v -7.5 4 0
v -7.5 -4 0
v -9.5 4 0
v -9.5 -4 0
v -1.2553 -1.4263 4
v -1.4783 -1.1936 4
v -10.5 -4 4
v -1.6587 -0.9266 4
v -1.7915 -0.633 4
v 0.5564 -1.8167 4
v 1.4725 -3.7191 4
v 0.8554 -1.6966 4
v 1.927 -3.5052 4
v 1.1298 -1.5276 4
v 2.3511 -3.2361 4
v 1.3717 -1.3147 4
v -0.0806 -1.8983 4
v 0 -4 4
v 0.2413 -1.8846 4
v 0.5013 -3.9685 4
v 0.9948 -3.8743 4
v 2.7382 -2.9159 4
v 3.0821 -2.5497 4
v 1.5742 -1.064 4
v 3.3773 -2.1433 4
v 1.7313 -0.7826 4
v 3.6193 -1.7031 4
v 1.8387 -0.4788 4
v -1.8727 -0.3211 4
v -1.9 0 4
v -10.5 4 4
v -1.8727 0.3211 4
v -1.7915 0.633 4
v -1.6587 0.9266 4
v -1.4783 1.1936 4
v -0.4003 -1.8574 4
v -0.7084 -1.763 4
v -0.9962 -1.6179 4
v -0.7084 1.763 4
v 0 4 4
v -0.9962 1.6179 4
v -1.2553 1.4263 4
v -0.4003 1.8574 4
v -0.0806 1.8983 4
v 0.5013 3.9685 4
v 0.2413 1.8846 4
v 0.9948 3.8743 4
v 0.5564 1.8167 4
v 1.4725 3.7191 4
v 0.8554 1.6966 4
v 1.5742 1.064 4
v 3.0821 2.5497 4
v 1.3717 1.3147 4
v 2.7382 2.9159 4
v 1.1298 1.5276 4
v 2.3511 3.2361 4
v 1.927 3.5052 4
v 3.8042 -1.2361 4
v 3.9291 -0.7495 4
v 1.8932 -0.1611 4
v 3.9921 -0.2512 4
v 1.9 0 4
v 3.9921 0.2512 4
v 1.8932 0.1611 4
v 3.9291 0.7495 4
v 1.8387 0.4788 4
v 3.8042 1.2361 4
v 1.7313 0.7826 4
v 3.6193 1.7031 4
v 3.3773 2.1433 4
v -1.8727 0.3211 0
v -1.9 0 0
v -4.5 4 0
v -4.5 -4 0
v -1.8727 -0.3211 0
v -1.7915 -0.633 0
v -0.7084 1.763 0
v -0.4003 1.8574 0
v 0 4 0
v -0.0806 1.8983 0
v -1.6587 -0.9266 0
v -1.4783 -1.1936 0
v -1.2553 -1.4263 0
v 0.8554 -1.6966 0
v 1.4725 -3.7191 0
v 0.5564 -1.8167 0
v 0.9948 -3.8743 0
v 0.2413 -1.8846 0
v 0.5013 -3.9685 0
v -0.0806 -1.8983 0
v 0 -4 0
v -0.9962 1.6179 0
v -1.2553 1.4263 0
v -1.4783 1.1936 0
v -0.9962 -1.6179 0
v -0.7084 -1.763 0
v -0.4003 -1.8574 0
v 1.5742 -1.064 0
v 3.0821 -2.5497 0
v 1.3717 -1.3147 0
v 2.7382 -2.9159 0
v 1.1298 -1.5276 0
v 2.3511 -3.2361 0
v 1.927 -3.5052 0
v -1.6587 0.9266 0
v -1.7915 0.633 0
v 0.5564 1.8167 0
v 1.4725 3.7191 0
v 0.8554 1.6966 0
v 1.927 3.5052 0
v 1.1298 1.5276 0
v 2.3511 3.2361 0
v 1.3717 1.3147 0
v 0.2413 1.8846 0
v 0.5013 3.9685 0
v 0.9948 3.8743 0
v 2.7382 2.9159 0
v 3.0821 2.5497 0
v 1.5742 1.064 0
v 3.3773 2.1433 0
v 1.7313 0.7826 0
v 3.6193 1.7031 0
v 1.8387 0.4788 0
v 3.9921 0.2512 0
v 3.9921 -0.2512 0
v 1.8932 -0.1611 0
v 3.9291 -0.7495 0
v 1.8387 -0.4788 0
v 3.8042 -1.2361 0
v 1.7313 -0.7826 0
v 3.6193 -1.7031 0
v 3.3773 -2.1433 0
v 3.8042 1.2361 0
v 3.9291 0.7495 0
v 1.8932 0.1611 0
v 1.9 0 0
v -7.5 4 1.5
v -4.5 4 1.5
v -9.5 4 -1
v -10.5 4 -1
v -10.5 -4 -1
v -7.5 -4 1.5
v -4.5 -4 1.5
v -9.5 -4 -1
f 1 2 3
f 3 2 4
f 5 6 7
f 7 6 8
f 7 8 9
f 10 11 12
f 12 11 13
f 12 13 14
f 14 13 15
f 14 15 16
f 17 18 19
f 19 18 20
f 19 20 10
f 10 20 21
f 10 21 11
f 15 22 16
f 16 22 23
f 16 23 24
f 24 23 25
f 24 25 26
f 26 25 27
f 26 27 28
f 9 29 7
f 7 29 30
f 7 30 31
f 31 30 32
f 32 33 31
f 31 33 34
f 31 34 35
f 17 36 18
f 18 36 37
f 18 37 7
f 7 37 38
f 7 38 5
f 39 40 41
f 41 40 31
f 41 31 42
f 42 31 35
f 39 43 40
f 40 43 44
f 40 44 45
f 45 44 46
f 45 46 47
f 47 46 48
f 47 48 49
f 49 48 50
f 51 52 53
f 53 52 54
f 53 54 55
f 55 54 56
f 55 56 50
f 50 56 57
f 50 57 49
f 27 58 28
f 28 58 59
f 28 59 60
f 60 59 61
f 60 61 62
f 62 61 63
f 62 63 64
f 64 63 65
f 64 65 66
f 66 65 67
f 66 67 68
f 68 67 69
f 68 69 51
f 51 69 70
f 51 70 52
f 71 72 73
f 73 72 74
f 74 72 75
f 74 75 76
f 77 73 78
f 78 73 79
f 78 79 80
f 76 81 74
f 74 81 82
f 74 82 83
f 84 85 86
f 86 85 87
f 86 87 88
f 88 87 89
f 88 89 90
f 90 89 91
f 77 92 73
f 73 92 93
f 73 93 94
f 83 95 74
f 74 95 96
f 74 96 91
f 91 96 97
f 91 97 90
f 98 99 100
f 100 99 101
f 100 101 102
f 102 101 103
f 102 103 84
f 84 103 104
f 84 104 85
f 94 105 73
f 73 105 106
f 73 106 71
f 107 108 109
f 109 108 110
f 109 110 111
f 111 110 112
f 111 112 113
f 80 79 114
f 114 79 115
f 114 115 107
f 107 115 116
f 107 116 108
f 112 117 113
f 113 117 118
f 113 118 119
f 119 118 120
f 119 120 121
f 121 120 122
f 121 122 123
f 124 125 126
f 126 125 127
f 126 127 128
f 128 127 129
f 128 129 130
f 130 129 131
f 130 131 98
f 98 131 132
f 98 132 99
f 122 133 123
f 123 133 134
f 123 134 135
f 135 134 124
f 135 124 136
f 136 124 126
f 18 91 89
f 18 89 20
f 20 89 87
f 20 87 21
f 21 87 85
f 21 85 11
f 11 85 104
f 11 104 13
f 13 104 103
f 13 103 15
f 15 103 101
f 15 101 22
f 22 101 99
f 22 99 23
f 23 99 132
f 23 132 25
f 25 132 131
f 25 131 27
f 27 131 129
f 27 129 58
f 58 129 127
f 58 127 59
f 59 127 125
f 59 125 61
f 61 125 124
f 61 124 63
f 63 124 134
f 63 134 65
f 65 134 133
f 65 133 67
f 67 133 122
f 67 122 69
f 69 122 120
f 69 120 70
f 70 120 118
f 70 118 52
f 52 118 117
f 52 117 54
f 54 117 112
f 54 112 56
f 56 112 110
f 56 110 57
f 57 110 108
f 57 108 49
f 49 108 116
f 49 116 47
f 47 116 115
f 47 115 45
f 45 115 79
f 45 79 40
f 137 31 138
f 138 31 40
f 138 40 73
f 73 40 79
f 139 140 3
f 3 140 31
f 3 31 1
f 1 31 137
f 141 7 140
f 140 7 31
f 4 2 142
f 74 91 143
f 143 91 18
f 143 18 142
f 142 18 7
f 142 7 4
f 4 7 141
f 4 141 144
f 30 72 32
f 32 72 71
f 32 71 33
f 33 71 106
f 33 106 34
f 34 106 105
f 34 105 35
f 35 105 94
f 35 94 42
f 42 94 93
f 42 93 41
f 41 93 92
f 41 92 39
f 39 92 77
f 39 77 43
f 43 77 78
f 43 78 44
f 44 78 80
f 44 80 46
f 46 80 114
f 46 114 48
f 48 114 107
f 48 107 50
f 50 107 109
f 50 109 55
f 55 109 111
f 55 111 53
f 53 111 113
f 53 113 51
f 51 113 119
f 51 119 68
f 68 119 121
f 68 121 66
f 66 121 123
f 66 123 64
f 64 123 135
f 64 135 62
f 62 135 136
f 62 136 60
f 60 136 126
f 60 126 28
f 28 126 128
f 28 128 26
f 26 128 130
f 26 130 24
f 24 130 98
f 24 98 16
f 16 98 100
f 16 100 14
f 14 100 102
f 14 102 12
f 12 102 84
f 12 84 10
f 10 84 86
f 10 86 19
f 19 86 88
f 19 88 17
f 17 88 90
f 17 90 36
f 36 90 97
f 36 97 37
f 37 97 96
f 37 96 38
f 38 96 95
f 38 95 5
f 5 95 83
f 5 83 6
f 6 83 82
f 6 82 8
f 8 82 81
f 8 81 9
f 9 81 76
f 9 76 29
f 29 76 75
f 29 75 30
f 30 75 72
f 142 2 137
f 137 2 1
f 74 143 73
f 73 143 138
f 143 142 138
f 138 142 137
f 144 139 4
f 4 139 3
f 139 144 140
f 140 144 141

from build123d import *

# Parameters (mm, degrees)
SKETCH_1_R          = 1.9
EXTRUDE_1_DEPTH     = 4
SKETCH_2_W          = 3
SKETCH_2_H          = 1.5
CUT_EXTRUDE_1_DEPTH = 14.793114224
SKETCH_3_W          = 1
SKETCH_3_H          = 8
EXTRUDE_2_DEPTH     = 1


with BuildPart() as part:
    # 草图1 → 凸台-拉伸1 (new body)
    with BuildSketch(Plane.XY):
        with BuildLine():
            Line((0, 4), (-10.5, 4))
            Line((-10.5, 4), (-10.5, -4))
            Line((-10.5, -4), (0, -4))
            ThreePointArc((0, -4), (4, 0), (0, 4))
        make_face()
        Circle(SKETCH_1_R, mode=Mode.SUBTRACT)
    extrude(amount=EXTRUDE_1_DEPTH)

    # 草图2 → 切除-拉伸1 (cut, through all)
    with BuildSketch(Plane(origin=(0, 4, 0), x_dir=(1, 0, 0), z_dir=(0, 1, 0))):
        with Locations((-6, -0.75)):
            Rectangle(SKETCH_2_W, SKETCH_2_H)
    extrude(amount=-CUT_EXTRUDE_1_DEPTH, mode=Mode.SUBTRACT)

    # 草图3 → 凸台-拉伸2 (add)
    with BuildSketch(Plane(origin=(0, 0, 0), x_dir=(-1, 0, 0), z_dir=(0, 0, -1))):
        with Locations((10, 0)):
            Rectangle(SKETCH_3_W, SKETCH_3_H)
    extrude(amount=EXTRUDE_2_DEPTH)


solid = part.part
